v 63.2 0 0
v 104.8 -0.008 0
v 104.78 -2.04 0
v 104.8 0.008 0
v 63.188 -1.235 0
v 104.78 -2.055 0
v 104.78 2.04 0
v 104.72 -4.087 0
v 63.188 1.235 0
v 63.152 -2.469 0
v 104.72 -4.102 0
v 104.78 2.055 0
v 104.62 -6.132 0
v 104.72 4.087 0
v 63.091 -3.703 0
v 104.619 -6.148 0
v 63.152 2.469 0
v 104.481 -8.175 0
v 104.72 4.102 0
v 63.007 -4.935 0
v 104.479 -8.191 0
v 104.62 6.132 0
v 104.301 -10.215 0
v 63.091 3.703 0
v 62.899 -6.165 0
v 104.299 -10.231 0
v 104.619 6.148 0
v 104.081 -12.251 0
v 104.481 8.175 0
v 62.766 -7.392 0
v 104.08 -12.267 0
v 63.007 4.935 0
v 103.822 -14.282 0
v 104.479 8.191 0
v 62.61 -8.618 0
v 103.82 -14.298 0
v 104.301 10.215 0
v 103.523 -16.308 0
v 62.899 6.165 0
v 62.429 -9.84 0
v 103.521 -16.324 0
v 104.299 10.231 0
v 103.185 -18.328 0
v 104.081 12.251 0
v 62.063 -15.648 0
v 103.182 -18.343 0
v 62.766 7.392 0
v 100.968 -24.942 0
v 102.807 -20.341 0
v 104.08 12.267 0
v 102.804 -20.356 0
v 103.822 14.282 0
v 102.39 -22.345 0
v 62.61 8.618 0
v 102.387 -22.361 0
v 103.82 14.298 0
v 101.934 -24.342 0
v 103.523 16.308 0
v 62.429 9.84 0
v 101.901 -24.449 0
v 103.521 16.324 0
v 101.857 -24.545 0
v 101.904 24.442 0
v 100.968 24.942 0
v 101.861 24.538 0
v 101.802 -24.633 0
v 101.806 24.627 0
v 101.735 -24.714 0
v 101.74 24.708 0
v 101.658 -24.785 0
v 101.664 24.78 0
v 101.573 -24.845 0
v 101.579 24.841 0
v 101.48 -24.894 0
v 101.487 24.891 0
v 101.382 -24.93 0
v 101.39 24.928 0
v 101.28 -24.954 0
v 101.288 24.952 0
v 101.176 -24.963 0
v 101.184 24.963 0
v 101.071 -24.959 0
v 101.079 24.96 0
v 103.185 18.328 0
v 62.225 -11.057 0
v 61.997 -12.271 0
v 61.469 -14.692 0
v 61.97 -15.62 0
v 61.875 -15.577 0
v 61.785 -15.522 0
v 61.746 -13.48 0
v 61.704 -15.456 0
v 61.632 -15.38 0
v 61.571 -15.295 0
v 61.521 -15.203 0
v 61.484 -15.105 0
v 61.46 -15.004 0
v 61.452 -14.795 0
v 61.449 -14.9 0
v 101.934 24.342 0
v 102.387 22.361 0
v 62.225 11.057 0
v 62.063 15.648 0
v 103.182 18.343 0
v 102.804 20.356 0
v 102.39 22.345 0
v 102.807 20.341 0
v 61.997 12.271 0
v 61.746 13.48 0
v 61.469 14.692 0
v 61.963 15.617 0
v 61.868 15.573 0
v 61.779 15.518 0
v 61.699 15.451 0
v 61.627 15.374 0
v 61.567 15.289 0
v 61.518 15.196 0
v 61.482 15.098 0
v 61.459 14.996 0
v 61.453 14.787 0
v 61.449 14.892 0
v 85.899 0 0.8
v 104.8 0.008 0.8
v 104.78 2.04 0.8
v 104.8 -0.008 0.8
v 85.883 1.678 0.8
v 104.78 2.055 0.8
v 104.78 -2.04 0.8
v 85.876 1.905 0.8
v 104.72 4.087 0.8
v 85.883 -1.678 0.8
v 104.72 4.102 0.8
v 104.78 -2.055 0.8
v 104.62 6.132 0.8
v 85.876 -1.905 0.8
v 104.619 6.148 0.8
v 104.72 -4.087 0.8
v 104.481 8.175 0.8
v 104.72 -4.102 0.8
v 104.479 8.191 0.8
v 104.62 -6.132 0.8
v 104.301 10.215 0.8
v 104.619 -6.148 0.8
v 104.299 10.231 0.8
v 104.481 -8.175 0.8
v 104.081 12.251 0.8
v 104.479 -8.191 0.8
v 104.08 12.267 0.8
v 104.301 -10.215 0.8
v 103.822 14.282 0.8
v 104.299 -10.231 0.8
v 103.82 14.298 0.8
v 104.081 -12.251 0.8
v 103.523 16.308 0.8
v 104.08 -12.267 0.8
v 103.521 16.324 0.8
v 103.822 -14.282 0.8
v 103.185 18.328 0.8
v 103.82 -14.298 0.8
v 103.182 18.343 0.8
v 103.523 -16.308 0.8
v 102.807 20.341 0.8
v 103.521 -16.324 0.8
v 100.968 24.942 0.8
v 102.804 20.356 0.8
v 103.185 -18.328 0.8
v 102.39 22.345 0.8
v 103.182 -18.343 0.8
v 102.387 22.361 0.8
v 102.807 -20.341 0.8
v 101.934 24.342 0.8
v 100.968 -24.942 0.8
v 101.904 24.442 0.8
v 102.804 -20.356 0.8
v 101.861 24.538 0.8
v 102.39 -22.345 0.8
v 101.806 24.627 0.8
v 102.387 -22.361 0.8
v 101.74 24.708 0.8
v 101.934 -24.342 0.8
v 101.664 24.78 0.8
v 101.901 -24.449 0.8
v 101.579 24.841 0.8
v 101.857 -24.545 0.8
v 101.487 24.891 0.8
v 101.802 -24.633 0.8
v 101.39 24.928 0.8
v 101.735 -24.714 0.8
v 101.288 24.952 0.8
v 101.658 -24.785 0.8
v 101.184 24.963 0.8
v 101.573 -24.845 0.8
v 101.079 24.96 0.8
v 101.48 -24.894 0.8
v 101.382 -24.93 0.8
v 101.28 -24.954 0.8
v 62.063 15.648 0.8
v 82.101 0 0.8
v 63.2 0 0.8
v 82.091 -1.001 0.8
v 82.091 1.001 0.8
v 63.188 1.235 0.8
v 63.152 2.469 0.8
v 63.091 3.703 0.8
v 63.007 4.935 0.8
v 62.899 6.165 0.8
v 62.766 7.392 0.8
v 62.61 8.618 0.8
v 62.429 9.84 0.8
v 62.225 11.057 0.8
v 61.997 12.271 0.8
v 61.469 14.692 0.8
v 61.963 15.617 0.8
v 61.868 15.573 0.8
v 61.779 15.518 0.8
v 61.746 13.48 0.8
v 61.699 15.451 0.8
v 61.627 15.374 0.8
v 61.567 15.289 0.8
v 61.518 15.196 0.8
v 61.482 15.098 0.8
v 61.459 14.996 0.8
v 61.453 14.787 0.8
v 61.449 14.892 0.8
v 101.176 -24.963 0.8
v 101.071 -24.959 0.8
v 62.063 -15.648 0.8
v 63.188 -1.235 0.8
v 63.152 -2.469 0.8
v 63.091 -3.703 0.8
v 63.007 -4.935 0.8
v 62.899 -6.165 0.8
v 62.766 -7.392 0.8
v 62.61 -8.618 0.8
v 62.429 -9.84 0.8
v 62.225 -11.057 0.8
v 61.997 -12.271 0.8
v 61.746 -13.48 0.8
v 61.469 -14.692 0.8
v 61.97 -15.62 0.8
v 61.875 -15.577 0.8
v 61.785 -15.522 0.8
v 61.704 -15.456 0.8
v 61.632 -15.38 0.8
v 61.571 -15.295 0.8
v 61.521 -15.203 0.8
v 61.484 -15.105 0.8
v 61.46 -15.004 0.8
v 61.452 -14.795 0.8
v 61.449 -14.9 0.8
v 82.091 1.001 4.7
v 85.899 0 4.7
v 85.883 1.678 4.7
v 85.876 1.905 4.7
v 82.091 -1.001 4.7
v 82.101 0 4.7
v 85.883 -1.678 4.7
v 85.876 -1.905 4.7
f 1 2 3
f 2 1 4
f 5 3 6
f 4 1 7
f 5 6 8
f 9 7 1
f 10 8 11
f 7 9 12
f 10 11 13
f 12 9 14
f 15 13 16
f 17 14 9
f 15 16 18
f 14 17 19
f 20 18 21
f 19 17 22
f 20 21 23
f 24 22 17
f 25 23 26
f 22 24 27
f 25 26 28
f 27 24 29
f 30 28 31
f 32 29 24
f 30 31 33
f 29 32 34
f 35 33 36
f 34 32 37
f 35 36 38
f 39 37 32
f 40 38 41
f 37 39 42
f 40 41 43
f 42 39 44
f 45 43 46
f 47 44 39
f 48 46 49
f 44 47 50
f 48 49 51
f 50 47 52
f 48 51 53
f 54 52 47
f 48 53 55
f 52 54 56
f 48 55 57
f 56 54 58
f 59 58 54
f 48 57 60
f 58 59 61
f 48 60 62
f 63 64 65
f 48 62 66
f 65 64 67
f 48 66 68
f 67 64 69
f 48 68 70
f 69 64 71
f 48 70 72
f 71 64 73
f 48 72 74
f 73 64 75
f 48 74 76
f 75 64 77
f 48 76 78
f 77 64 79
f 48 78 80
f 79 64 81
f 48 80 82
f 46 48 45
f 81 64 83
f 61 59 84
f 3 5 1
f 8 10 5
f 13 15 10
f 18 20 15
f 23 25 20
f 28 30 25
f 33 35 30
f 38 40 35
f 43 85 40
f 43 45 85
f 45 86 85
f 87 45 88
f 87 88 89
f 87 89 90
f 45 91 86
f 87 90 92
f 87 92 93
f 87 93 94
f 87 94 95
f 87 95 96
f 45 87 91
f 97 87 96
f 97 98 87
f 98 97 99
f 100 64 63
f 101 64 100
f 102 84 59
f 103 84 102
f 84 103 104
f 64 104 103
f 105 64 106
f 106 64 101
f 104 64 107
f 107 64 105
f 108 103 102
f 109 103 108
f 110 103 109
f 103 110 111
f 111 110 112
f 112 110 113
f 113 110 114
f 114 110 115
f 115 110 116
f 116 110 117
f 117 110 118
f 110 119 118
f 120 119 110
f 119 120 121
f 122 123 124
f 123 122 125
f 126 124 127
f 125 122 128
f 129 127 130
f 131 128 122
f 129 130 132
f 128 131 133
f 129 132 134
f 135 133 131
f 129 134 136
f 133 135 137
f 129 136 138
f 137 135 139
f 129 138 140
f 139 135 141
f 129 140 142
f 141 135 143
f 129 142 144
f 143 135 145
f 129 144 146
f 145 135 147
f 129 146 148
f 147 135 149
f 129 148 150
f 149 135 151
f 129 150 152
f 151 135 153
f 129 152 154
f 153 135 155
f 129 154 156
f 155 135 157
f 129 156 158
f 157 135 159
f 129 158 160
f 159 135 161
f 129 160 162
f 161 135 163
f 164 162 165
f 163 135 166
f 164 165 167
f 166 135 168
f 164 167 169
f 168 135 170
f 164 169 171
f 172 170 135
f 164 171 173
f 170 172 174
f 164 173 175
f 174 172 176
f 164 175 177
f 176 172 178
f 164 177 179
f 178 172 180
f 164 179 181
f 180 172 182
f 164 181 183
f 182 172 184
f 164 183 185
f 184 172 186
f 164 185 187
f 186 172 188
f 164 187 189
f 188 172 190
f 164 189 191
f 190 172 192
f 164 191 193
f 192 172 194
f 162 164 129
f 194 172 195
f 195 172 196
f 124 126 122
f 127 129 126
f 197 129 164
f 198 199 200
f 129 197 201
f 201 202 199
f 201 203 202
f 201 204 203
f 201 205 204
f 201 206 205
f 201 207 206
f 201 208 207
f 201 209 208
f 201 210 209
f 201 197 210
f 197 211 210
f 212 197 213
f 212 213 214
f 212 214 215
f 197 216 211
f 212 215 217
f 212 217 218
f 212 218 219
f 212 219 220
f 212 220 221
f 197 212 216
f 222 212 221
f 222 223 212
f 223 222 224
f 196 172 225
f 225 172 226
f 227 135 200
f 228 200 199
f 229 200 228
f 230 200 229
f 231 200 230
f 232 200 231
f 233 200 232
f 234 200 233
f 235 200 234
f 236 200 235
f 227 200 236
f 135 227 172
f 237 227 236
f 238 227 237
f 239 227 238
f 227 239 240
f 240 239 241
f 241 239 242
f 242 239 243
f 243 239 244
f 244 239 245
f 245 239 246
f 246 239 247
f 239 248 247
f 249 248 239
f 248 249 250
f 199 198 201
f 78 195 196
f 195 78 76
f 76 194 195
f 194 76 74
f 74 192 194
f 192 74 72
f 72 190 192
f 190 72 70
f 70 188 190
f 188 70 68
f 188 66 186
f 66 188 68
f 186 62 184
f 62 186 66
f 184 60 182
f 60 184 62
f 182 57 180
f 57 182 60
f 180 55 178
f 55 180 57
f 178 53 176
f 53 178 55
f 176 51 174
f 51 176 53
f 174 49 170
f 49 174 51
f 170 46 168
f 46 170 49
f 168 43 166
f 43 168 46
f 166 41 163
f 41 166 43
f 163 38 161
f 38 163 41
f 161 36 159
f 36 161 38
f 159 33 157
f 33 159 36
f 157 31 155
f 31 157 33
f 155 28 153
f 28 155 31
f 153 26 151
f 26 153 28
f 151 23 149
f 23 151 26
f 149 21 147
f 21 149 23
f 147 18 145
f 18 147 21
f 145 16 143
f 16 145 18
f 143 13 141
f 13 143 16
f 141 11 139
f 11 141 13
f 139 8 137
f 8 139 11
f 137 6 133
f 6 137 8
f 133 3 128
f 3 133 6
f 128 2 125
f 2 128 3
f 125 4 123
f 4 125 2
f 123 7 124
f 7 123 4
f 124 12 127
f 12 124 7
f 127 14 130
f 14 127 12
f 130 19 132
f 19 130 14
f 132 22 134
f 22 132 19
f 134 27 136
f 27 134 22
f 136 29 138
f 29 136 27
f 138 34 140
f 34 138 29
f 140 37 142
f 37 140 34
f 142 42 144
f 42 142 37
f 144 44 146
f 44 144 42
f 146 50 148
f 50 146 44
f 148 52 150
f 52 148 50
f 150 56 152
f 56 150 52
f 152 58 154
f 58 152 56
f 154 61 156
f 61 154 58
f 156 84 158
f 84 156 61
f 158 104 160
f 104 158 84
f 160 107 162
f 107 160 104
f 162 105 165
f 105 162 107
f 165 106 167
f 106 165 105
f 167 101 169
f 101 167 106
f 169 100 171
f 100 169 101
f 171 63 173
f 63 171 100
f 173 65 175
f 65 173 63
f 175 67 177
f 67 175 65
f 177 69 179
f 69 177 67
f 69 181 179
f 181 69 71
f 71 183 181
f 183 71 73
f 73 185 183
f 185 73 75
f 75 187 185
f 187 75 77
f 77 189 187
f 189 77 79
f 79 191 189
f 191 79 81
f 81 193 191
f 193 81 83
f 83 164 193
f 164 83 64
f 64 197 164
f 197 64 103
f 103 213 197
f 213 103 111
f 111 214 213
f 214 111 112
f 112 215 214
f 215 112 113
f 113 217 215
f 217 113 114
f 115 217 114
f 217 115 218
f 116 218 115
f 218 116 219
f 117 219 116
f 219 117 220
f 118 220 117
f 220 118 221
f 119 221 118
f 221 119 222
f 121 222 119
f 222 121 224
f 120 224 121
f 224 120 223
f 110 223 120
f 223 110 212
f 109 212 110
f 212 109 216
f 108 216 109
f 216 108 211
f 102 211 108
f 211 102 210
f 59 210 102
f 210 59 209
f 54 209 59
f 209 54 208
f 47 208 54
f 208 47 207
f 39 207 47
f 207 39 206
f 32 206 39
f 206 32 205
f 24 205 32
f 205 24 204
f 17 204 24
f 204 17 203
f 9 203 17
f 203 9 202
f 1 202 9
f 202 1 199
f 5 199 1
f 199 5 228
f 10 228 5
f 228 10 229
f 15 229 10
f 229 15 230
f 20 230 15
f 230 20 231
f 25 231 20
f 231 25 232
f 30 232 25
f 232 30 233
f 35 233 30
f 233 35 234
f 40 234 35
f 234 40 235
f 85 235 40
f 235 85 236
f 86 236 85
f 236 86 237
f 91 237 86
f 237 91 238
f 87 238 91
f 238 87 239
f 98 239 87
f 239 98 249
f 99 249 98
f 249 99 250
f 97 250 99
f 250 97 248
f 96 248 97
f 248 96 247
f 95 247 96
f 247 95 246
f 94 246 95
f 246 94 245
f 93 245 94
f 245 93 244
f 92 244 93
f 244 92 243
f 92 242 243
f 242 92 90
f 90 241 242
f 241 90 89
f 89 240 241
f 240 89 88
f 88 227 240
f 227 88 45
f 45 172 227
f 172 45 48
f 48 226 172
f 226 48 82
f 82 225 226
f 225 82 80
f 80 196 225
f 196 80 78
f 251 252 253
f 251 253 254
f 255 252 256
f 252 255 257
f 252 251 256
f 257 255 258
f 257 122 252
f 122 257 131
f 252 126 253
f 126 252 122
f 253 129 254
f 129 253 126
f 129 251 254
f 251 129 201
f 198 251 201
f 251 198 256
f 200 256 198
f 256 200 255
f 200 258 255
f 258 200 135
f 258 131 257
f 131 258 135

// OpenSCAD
// file: parameters.scad
// =============================================================================
// Gen-CE — nightly 2026-10-14 (physics_scorer, honest magpylib watts)
// Wire-saver stator for the Gen-CD rotors: only 3.9 mm of copper (≈9 layers), magnet faces ≈6.5 mm apart, peak Bz ≈0.70 T. Uses ≈300 m of wire (≈80 m less than Gen-CD) and still clears Gen-BX; shares every rotor part, the steel, the frame rods and the bearing bridges with Gen-CD, so the two stators swap on the same machine.
// Clocking 0 deg (magnets N facing S) + D-flat keyed bore + index notch + flip-symmetric hole map.
// Windable 2-piece bobbin; turns = physics_scorer turns_fit; copper only between flanges.
// Steel back-iron: 2× Ø198 × 4.76 mm (3/16") mild-steel discs (steel_backiron_disc.dxf); magnets sit ON the steel
// (through-pockets) -> score with --back-iron. Night 2026-10-14.
// =============================================================================
topology            = "dual_rotor";

// --- Wire / winding (physics_scorer winding-fit) -------------------------------
wire_awg            = 26;
wire_od             = 0.45;     // insulated OD mm (bare 0.405)
fill_realistic      = 0.65;     // insulated-wire area / window (DENSE layered wind with a jig; scorer cap 0.65)
turns               = 288;       // = physics_scorer turns_fit (do NOT raise)
coil_former_type    = "bobbin";
coil_core_inset     = 18.10;     // radial copper build: hub = copper boundary inset by this
wind_build_axial    = 0.0;      // nothing proud of the flanges
wind_build_radial   = 0.0;

// --- Bobbin (base + lid) ---------------------------------------------------------
coil_id_r           = 64.00;    // copper boundary sector
coil_od_r           = 104.00;
span_deg            = 26.87;    // = pitch - 2*asin((wall+0.85)/coil_id_r) -> >=1.2 mm stator web
former_web          = 3.90;     // copper height between flanges (TALL copper: steel keeps Bz up)
flange_t            = 0.80;     // >= 0.8 mm FDM wall rule (tall winds push on the flanges)
wall                = 0.80;     // flange lip beyond copper
former_bare_h       = former_web + 2 * flange_t;
coil_envelope_h     = former_bare_h + 2 * wind_build_axial;
tab_w               = 7.0;
tab_len             = 7.0;
tab_h               = former_bare_h / 2;
pin_d               = 1.9;      // 1.75 mm filament locating pin
coil_mount_r        = coil_od_r + 0.2 + 4.0;
lead_y              = 1.6;
lead_slot_w         = 0.9;
lead_groove_d       = 0.6;

// --- Gap -------------------------------------------------------------------------
run_clear           = 0.50;     // rotor face -> flange
gap_spacer_h        = run_clear + wind_build_axial;
m2m                 = coil_envelope_h + 2 * run_clear;   // rotor face to rotor face (= gap_sleeve length)

// --- Stator ----------------------------------------------------------------------
coil_stations       = 12;
bay_clear           = 0.35;     // 0.35 mm: bobbin BASES print IN PLACE inside the stator bays (print-in-place gap), then pop out
stator_thick        = former_bare_h;                        // bobbins flush both faces
stator_od           = 229.0;
shaft_clear_stator  = 14.0;     // stator is static; gap sleeve OD 12 spins inside
stator_ir           = 58.85;    // ANNULAR stator: open centre (nested one-plate pack); inner rim 4.0 mm

// --- Rotor(s) --------------------------------------------------------------------
magnet_Br           = 1.43;     // N52
magnet_d_large      = 20.0;
magnet_h_large      = 5.0;      // one O20x5 per pocket
magnet_h_small      = 5.0;      // unused: no O5 pockets in this kit
halbach_magnetisation = "none";  // NO O5 assist magnets in this kit (scan: they lower the 4-pole score)
rotor_b_same_axis   = true;     // same-index magnets share one axis: N faces S across the gap
large_pocket_d      = 20.3;
small_pocket_d      = 5.3;
pocket_h            = 5.00;     // THROUGH the carrier: magnet back face sits on the steel disc (FLUSH seat: carrier = magnet height, magnet face level with the rotor face)
large_n             = 8;
R_large             = 86.0;
small_r_list        = [];       // no O5 pockets
carrier_od          = 198.0;
ring_ir             = 72.85;    // RING rotor: PLA magnet ring r ring_ir..carrier_od/2 (steel disc = structural rotor)
hub_flange_od       = 74.0;     // separate rotor_hub flange (inside the ring, flush with the ring face)
csk_d               = 6.6;      // M3 countersunk head pocket (ISO 10642 head 6.0 nominal) on the stator face
csk_depth           = 1.55;     // = (csk_d - m3_clear) / 2: 90 deg cone; head sits 0.3 mm below the face
n_seg               = 8;        // magnet-carrier ARCS per rotor (segmented carrier)
seg_deg             = 360 / n_seg;
seg_start           = -22.5;   // arc edge angle (between pocket 0 and its clamp bolt)
seg_kerf_deg        = 0.4;      // gap between neighbouring arcs on the steel
carrier_thick       = pocket_h;
hub_h               = 12.0;     // > steel_t + insert: radial set-screw clears the steel
hub_od              = 24.0;     // slim hub so the M4 brace rods fit at R~18 inside the coil ring
hub_insert_d        = 4.0;      // M3 heat-set insert, radial, bears on the D-flat
rotor_b_offset_deg  = 0.0;      // CLOCKING: magnets directly opposite
shaft_key           = "dflat";
dflat_depth         = 0.5;      // 8 mm shaft with 0.5 mm flat (7.5 across flat)
index_notch_d       = 3.0;

// --- Steel back-iron (buyable laser-cut) -------------------------------------------
steel_t             = 4.76;      // mild steel thickness (image method ignores it; sized from steel_flux.py so the return path stays well below saturation)
steel_center_hole   = 26.0;     // slips over the rotor hub (OD 24)
steel_od            = carrier_od;   // steel disc OD = rotor carrier OD

// --- Modular MAX interface ----------------------------------------------------------
shaft_bore          = 8.35;
dflat_x             = 4.0 - dflat_depth + (shaft_bore - 8.0) / 2;
bearing_d           = 21.85;
bearing_h           = 7.2;
m3_clear            = 3.5;
bolt_r_inner        = 30.0;     // M3 steel-disc clamp bolts (inside the magnet ring)
bolt_n_inner        = 4;
bolt_inner_angles   = [0, 90, 180, 270];
bolt_r_outer        = 86.0;     // second M3 steel-disc clamp ring
bolt_outer_angles   = [22.5, 67.5, 112.5, 157.5, 202.5, 247.5, 292.5, 337.5];
flange_bolt_r       = 109.5;     // frame rods: OUTSIDE the rotor OD (rotors spin inside them)
flange_bolt_n       = 4;
flange_bolt_offset  = 45.00;    // between coil stations -> never cuts a lead groove/tab
brace_r             = 18.0;
brace_d             = 4.3;      // temporary M4 jack rods (assembly only)
brace_n             = 4;
brace_angles        = [45, 135, 225, 315];          // flip-symmetric

spacer_pad_od       = 14.0;
spacer_pad_id       = m3_clear;
endbell_od          = 229.0;
endbell_thick       = 8.0;
endbell_shaft_clear = 10.0;
collar_h            = 10.0;
standoff_od         = 9.0;
frame_standoff_h    = run_clear + carrier_thick + hub_h + collar_h + 2.0;
sleeve_od           = 12.0;
plate_max_mm        = 410;

$fn = 64;
// main file
// Gen-CE — bobbin BASE (bottom flange + hub). Print x12, flange down. Wind 26 AWG x 288 t around
// the hub with the LID glued on (coil_lid.stl). Copper lives ONLY between the flanges (no proud winds).
include <parameters.scad>;
$fn = 48;
module sector_2d(r_in, r_out, ang) {
    polygon([
        for (a = [-ang/2 : ang/24 : ang/2]) [r_in*cos(a), r_in*sin(a)],
        for (a = [ang/2 : -ang/24 : -ang/2]) [r_out*cos(a), r_out*sin(a)]
    ]);
}
module footprint_2d() { offset(r=wall) sector_2d(coil_id_r, coil_od_r, span_deg); }
module hub_2d()       { offset(delta=-coil_core_inset) sector_2d(coil_id_r, coil_od_r, span_deg); }

union() {
    linear_extrude(flange_t) footprint_2d();
    translate([0, 0, flange_t - 0.01]) linear_extrude(former_web + 0.01) hub_2d();
}
